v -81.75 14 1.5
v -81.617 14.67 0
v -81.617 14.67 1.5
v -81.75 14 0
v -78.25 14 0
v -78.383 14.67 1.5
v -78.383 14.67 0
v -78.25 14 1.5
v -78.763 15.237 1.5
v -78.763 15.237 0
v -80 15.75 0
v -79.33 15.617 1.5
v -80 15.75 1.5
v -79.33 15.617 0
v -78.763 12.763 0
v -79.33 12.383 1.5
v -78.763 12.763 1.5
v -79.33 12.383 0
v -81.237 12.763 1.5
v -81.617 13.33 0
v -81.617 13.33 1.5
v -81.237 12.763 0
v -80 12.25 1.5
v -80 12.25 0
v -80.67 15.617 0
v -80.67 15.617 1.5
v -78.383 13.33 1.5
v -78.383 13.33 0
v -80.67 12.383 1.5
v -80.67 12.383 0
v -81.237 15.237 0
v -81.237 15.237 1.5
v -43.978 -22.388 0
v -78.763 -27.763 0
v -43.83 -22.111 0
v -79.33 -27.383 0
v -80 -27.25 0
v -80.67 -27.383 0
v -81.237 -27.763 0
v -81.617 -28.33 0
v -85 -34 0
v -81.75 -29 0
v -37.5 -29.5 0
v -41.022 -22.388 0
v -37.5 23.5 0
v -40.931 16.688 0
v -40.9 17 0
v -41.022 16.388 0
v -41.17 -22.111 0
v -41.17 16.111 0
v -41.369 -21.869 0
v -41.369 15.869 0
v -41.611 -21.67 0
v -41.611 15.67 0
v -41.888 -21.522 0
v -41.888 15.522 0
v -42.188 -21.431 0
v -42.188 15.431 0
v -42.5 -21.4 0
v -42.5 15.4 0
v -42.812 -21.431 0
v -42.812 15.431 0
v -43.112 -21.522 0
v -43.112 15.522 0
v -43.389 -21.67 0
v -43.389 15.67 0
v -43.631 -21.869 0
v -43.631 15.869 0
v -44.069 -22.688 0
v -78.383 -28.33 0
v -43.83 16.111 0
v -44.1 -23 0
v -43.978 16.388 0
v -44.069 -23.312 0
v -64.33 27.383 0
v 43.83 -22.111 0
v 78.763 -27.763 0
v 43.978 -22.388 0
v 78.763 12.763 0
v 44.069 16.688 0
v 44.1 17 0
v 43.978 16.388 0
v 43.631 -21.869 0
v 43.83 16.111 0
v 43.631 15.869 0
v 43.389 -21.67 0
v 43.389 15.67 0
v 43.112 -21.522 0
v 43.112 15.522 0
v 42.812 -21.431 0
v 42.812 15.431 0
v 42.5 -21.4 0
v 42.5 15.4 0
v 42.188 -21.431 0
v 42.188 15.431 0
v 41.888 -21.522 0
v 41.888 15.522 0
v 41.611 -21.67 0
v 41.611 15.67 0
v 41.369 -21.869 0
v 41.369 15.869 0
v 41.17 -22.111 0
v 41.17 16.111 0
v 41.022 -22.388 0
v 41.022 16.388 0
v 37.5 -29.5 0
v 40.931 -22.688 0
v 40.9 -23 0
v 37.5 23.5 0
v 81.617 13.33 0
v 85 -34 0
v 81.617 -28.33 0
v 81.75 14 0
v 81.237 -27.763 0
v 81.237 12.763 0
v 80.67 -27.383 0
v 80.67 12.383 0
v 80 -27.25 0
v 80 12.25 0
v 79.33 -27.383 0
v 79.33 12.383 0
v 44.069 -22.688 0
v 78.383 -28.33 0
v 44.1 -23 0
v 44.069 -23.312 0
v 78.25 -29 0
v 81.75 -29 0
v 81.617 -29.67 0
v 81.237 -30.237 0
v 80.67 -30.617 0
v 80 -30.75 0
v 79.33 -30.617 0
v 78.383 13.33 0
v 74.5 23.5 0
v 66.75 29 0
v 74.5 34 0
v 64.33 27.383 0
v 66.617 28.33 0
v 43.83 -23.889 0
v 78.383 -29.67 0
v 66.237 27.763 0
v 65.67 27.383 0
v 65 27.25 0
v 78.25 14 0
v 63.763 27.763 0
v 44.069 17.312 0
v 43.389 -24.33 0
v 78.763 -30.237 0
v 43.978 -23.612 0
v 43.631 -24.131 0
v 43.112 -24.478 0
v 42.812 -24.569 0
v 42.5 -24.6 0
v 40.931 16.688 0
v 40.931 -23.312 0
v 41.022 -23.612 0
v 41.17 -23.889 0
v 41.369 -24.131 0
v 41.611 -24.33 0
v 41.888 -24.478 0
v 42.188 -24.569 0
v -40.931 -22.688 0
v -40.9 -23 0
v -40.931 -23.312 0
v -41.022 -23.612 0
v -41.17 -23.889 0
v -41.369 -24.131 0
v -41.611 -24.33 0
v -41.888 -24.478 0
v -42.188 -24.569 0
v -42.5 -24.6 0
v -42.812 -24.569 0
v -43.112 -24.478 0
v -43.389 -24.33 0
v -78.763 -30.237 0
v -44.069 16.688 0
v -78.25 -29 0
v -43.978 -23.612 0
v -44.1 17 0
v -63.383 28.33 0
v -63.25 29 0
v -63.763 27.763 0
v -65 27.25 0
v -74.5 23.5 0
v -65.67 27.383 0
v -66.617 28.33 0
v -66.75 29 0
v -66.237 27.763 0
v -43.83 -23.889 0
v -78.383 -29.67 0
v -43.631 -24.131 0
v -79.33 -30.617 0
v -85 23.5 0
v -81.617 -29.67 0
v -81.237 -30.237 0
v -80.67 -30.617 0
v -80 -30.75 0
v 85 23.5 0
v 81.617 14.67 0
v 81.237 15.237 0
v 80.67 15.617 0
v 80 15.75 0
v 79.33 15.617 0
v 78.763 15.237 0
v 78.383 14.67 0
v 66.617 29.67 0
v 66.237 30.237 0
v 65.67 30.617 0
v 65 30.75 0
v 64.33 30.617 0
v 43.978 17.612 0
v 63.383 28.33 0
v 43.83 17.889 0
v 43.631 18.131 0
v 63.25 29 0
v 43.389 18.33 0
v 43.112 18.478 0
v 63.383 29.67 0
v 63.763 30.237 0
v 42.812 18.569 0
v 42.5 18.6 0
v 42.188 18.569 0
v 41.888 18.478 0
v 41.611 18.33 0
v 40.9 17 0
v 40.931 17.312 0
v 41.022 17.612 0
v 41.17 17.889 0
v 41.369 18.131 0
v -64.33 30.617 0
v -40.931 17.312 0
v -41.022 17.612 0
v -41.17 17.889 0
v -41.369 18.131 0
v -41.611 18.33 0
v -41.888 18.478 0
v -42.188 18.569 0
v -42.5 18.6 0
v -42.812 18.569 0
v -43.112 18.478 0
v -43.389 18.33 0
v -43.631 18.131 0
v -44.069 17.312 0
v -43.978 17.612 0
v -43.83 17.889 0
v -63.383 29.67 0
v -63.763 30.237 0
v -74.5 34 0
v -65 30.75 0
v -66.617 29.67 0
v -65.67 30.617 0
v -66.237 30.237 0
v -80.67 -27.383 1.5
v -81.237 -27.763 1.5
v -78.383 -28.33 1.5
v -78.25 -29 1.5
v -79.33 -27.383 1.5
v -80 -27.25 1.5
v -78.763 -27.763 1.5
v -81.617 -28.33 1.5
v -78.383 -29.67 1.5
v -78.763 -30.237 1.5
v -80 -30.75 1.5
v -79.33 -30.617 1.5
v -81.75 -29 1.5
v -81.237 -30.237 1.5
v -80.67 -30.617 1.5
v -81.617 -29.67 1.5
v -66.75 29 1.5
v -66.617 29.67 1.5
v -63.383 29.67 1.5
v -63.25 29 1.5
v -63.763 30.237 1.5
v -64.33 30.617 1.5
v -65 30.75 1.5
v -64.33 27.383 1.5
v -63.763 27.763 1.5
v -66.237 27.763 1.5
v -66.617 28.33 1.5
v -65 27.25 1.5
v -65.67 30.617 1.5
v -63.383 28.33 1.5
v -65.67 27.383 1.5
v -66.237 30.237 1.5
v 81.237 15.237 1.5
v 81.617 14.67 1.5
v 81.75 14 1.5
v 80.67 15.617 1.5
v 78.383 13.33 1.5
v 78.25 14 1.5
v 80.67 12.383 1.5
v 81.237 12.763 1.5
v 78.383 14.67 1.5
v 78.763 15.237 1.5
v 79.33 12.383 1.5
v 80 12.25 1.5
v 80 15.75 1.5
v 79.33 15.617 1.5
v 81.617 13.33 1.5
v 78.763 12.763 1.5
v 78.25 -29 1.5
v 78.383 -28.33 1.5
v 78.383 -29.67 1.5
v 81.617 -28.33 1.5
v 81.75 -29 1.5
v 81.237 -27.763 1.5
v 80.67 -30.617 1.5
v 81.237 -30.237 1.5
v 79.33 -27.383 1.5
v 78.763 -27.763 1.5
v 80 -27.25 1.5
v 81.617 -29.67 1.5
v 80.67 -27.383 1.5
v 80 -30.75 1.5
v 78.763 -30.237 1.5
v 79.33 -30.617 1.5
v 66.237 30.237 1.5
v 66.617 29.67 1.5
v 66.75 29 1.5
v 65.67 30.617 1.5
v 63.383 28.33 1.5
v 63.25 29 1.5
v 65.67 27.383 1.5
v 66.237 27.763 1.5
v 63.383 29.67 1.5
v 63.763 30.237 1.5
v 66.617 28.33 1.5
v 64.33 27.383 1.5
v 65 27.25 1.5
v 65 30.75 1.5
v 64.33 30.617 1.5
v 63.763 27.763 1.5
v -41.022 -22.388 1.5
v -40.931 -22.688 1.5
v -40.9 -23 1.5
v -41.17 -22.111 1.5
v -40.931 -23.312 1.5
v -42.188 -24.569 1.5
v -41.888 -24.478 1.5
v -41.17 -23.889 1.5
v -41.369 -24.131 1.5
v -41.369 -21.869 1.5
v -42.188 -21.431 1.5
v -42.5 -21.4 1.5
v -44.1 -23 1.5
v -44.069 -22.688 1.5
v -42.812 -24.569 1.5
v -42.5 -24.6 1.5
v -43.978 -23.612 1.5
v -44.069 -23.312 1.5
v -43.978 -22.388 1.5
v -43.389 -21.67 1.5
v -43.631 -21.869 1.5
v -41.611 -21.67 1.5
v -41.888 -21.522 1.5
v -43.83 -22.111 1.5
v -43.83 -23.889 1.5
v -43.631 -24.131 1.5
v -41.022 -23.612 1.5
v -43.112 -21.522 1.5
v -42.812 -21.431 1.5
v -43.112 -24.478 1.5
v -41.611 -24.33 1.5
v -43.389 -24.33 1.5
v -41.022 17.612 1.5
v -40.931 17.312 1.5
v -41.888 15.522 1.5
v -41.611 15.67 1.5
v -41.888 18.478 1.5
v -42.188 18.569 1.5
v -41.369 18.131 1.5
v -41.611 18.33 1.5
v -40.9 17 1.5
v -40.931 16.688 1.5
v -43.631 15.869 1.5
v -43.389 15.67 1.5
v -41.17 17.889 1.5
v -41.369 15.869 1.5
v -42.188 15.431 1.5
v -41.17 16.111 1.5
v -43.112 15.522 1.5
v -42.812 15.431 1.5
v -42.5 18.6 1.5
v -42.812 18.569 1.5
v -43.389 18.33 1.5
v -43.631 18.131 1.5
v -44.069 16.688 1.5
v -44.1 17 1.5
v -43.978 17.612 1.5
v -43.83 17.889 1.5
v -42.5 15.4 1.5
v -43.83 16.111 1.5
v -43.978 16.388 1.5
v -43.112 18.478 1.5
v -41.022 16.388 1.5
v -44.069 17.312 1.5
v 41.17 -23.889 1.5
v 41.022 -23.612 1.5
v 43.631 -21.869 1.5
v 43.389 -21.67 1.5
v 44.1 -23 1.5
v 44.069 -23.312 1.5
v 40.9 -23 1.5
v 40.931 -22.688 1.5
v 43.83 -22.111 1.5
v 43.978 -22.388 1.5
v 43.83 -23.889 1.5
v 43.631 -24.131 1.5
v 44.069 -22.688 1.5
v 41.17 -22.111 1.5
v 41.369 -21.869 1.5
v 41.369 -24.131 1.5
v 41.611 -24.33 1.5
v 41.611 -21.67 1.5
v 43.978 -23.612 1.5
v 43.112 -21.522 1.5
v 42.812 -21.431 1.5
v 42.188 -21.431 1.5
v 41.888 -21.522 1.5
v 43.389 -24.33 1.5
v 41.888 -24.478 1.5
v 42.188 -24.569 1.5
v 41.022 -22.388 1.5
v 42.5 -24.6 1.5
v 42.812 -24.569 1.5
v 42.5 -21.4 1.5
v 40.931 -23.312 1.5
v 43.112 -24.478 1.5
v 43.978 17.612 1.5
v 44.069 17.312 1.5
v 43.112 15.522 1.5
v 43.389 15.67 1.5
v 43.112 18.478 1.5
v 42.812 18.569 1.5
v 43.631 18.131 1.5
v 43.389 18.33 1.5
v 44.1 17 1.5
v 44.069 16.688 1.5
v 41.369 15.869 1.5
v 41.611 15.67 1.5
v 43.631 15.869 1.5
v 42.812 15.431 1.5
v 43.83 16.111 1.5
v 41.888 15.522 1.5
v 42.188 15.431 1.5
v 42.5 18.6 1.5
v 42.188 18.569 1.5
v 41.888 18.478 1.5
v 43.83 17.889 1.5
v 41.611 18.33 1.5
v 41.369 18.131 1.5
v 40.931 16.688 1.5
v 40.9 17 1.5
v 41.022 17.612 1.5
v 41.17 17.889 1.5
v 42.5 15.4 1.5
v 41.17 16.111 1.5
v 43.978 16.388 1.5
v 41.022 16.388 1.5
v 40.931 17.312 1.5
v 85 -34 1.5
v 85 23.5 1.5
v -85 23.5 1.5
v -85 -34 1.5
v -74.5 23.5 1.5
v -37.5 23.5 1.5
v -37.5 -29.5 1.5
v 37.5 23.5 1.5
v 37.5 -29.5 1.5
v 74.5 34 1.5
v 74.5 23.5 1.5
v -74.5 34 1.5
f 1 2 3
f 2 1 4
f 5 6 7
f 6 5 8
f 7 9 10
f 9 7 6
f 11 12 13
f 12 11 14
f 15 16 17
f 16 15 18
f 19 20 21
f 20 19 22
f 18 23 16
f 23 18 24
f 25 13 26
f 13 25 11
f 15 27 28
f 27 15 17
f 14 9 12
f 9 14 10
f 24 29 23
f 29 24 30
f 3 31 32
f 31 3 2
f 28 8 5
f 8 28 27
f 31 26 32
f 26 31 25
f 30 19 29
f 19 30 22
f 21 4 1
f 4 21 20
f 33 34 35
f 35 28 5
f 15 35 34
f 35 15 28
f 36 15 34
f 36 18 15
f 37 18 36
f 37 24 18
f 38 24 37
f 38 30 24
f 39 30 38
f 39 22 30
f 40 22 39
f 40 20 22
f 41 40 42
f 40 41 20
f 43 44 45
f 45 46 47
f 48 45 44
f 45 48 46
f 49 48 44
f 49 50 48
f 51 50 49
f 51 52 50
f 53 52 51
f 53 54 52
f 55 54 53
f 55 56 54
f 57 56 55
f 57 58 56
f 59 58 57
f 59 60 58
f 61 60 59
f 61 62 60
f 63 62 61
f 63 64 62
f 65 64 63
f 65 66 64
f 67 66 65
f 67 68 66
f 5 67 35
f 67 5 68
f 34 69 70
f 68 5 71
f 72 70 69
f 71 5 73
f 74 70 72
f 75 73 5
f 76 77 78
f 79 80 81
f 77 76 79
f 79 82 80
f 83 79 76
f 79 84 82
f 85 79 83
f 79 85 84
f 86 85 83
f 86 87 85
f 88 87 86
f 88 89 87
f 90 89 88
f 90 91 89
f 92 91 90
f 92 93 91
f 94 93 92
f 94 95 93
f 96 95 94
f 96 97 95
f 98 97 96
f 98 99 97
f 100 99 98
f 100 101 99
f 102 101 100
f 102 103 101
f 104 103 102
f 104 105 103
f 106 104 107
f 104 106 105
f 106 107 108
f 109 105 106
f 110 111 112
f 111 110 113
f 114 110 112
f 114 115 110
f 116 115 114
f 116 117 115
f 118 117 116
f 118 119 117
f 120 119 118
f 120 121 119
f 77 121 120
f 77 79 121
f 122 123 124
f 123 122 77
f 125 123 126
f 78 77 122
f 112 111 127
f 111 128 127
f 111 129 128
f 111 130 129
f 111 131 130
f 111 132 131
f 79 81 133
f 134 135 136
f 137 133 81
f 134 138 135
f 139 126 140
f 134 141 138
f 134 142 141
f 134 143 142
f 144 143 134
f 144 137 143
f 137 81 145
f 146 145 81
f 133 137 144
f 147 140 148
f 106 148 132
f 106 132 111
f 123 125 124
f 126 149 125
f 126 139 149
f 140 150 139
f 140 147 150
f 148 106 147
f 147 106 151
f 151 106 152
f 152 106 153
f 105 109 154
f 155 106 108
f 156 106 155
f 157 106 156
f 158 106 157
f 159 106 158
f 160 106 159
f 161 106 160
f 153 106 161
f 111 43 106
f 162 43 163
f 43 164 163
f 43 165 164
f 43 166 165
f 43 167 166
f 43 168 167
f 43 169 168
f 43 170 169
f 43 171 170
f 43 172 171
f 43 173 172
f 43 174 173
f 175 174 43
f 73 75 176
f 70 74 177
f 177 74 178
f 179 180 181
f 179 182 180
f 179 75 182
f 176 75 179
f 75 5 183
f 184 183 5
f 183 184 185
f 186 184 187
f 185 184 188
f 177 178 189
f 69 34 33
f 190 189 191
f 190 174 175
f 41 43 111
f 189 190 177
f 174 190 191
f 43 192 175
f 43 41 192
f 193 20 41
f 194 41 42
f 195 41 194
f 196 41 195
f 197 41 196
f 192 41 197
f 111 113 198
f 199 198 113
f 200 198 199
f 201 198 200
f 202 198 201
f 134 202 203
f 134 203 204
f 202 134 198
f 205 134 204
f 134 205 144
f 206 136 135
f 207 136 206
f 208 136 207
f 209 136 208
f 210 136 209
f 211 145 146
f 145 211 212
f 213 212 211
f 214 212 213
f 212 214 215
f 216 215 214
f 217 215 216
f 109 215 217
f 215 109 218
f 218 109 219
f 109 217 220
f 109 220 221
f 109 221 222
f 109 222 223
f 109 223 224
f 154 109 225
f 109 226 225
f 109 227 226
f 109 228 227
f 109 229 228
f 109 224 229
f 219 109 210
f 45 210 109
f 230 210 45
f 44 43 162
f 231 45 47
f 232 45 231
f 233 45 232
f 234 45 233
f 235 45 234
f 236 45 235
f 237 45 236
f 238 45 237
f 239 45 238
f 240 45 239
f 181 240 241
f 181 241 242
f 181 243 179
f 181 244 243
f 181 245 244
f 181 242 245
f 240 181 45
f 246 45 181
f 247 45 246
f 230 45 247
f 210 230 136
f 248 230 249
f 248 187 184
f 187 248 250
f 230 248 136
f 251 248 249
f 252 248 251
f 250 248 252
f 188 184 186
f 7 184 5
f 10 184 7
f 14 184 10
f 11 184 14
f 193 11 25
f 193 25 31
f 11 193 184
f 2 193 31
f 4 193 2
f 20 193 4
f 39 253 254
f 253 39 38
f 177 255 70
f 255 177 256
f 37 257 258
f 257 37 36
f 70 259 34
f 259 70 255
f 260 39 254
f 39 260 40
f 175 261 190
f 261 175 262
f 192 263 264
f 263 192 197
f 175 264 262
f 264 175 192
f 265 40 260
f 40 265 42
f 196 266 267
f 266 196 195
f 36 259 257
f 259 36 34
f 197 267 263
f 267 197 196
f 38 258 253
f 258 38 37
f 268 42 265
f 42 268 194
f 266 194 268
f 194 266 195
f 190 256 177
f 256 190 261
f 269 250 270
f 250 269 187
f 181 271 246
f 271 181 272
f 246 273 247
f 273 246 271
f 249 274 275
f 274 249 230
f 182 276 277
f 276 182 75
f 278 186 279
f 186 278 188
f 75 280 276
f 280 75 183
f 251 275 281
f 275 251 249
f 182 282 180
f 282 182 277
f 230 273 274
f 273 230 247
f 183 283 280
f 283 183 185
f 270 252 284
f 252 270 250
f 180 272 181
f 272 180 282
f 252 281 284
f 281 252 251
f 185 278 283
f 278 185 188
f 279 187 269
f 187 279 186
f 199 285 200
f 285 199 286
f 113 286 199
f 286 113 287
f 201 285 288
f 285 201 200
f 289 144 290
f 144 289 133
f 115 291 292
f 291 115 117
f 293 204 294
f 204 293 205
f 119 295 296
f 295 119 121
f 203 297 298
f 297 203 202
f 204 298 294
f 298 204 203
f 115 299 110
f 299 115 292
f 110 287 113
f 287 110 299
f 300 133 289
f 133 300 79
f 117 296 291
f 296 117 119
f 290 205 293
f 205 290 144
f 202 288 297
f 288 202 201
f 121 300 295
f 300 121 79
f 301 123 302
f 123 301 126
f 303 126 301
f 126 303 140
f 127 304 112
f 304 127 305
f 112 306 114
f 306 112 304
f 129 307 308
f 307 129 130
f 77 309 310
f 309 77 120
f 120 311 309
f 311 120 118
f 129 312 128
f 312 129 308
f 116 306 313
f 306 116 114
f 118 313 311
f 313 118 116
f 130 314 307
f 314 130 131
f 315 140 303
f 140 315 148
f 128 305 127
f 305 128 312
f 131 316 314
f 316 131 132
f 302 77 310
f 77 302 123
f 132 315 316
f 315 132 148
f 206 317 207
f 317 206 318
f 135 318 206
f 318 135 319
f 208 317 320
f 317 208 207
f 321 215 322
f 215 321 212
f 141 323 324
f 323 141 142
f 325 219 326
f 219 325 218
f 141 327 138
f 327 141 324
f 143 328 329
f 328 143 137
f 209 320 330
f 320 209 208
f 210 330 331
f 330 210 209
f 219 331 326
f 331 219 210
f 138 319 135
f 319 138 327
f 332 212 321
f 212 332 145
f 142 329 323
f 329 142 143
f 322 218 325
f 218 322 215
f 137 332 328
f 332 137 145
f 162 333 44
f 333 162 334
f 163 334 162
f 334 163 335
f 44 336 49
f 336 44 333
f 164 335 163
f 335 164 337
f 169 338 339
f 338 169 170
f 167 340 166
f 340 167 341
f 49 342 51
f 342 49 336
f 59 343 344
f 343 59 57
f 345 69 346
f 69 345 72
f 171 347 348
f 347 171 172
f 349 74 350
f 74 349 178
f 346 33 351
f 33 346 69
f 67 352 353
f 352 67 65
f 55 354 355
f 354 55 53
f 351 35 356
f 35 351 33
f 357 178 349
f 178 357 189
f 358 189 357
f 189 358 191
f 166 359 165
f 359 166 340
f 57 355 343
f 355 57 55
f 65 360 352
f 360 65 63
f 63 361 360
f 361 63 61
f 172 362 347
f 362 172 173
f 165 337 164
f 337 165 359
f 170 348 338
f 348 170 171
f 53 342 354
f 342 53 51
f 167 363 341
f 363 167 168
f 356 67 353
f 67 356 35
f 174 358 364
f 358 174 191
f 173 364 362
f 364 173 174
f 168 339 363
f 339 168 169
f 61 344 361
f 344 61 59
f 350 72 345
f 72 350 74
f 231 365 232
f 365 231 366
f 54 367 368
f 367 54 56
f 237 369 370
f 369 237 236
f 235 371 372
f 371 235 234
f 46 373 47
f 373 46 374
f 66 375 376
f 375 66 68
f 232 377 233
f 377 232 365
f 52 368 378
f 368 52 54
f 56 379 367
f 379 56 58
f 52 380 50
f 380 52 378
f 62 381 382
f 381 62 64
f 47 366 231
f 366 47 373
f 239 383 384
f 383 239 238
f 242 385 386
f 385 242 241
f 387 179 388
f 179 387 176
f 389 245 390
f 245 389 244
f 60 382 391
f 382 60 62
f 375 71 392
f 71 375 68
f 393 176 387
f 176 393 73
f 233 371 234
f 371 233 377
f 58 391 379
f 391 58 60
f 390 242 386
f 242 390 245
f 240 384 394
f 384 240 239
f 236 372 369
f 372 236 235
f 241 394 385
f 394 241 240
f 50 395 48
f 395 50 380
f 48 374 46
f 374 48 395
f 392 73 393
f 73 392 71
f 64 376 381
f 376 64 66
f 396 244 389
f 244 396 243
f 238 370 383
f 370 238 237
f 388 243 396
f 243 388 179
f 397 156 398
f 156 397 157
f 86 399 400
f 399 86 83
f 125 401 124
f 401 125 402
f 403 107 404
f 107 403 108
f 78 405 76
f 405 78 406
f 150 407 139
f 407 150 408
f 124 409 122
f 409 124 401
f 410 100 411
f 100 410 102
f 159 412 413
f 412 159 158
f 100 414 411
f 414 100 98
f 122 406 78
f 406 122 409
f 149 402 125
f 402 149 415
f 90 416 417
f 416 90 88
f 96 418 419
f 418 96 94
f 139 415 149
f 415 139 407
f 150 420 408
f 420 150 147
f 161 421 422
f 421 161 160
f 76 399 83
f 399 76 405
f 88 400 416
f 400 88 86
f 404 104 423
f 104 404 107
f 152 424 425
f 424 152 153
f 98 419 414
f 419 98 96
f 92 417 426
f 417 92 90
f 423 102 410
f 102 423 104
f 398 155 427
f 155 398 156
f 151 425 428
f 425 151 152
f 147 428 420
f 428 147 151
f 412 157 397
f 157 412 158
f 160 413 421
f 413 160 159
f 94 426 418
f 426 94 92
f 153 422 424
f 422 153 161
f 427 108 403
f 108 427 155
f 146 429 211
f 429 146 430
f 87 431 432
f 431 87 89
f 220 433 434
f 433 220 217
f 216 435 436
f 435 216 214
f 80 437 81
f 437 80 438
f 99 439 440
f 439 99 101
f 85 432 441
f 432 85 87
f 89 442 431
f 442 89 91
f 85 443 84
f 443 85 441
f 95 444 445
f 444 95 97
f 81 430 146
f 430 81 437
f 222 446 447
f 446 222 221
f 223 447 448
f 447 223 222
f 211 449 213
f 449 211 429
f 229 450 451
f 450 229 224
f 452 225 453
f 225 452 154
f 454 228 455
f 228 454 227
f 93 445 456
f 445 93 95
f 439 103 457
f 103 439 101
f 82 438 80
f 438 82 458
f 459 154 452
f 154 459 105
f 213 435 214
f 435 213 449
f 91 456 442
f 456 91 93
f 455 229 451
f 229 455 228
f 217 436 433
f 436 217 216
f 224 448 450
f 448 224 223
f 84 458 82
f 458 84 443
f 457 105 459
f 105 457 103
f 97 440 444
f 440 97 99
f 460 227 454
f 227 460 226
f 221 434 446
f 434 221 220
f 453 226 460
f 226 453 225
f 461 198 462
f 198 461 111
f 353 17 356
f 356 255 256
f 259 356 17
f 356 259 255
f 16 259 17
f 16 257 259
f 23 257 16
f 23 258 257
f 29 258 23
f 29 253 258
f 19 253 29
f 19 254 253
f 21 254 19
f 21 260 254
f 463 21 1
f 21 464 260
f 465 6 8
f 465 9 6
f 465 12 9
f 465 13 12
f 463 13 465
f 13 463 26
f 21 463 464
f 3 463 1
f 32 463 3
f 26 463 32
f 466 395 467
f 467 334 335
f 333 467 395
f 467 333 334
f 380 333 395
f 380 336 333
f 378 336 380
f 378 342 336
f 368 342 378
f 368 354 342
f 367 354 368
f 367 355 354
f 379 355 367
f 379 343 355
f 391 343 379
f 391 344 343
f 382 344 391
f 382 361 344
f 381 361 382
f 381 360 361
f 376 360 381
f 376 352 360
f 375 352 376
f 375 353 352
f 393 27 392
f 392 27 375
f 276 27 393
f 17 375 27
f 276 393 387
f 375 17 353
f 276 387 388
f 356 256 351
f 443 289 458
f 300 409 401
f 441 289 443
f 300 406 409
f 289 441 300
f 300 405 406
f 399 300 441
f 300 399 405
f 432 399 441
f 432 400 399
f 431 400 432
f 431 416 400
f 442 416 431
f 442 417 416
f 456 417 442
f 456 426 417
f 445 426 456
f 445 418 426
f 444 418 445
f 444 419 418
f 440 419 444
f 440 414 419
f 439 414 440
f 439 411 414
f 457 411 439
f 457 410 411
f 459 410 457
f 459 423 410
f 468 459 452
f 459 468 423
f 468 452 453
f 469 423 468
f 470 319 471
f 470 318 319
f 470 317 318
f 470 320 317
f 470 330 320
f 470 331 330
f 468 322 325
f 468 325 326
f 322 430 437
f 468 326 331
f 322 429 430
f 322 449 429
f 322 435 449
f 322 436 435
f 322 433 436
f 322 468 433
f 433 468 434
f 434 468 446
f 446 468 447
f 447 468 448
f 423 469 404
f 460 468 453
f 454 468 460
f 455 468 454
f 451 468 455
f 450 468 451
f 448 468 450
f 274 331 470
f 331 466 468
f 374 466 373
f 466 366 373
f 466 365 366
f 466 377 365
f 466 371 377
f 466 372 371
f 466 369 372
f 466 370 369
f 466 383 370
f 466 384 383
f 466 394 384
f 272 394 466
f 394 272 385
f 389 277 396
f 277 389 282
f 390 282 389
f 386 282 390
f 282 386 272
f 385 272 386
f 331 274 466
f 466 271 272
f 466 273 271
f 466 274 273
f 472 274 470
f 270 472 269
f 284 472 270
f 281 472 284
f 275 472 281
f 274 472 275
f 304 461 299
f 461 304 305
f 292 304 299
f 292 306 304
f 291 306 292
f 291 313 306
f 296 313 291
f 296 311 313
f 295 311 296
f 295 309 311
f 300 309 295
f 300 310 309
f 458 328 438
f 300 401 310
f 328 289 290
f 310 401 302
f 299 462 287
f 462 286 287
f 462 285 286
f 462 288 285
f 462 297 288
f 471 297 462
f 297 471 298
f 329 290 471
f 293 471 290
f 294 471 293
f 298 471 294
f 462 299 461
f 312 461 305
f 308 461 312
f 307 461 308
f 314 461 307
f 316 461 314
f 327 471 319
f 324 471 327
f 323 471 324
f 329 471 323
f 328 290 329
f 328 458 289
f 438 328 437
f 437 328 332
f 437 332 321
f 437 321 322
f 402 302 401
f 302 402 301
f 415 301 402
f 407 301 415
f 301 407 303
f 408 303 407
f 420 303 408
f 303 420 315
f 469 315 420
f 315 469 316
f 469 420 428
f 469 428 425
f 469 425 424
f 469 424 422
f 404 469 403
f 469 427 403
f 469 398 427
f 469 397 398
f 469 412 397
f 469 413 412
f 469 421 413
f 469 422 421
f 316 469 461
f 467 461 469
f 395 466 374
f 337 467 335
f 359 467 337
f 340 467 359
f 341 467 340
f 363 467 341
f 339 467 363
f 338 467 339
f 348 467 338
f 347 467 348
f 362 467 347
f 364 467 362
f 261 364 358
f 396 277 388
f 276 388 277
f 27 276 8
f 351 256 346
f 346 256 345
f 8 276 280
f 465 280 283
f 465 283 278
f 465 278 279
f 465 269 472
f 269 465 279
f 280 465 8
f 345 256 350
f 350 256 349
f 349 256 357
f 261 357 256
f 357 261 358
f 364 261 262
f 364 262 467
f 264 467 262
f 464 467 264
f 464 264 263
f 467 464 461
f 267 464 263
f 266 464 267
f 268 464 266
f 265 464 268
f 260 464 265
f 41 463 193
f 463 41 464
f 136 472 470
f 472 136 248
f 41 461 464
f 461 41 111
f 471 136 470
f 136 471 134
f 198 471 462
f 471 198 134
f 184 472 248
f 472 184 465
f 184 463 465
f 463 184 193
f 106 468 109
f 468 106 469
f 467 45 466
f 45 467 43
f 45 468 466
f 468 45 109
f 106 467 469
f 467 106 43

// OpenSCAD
difference() {
    cube_center([170,68,1.5]);
    translate([170/2-5.25,68/2-5.25,0])
    cube_center([10.5,10.5,2]);
    translate([-(170/2-5.25),68/2-5.25,0])
    cube_center([10.5,10.5,2]);
    
    
    for(s=[-1,1]) {
        translate([s*(170/2-5),68/2-5-15,0])
        cylinder(d=3.5,h=10,$fn=16);
        translate([s*(170/2-5),-68/2+5,0])
        cylinder(d=3.5,h=10,$fn=16);
        translate([s*(170/2-5-15),(68/2-5),0])
        cylinder(d=3.5,h=10,$fn=16);
    }

    translate([0,-3,0])
    cube_center([75,53,10]);
    for(s=[-1,1]) for(t=[-1,1])
    translate([(75/2+5)*s,20*t-3,0])
    cylinder(d=3.2,h=10,$fn=32);
}

module cube_center(dims,r=0) {
    if(r==0) {
        translate([-dims[0]/2, -dims[1]/2, 0])
        cube(dims);
    } else {
        
        minkowski() {
            translate([-dims[0]/2+r, -dims[1]/2+r, 0])
            cube([dims[0]-2*r,dims[1]-2*r,dims[2]]);
            cylinder(r=r,h=0.00001,$fn=32);
        }
    }
}
